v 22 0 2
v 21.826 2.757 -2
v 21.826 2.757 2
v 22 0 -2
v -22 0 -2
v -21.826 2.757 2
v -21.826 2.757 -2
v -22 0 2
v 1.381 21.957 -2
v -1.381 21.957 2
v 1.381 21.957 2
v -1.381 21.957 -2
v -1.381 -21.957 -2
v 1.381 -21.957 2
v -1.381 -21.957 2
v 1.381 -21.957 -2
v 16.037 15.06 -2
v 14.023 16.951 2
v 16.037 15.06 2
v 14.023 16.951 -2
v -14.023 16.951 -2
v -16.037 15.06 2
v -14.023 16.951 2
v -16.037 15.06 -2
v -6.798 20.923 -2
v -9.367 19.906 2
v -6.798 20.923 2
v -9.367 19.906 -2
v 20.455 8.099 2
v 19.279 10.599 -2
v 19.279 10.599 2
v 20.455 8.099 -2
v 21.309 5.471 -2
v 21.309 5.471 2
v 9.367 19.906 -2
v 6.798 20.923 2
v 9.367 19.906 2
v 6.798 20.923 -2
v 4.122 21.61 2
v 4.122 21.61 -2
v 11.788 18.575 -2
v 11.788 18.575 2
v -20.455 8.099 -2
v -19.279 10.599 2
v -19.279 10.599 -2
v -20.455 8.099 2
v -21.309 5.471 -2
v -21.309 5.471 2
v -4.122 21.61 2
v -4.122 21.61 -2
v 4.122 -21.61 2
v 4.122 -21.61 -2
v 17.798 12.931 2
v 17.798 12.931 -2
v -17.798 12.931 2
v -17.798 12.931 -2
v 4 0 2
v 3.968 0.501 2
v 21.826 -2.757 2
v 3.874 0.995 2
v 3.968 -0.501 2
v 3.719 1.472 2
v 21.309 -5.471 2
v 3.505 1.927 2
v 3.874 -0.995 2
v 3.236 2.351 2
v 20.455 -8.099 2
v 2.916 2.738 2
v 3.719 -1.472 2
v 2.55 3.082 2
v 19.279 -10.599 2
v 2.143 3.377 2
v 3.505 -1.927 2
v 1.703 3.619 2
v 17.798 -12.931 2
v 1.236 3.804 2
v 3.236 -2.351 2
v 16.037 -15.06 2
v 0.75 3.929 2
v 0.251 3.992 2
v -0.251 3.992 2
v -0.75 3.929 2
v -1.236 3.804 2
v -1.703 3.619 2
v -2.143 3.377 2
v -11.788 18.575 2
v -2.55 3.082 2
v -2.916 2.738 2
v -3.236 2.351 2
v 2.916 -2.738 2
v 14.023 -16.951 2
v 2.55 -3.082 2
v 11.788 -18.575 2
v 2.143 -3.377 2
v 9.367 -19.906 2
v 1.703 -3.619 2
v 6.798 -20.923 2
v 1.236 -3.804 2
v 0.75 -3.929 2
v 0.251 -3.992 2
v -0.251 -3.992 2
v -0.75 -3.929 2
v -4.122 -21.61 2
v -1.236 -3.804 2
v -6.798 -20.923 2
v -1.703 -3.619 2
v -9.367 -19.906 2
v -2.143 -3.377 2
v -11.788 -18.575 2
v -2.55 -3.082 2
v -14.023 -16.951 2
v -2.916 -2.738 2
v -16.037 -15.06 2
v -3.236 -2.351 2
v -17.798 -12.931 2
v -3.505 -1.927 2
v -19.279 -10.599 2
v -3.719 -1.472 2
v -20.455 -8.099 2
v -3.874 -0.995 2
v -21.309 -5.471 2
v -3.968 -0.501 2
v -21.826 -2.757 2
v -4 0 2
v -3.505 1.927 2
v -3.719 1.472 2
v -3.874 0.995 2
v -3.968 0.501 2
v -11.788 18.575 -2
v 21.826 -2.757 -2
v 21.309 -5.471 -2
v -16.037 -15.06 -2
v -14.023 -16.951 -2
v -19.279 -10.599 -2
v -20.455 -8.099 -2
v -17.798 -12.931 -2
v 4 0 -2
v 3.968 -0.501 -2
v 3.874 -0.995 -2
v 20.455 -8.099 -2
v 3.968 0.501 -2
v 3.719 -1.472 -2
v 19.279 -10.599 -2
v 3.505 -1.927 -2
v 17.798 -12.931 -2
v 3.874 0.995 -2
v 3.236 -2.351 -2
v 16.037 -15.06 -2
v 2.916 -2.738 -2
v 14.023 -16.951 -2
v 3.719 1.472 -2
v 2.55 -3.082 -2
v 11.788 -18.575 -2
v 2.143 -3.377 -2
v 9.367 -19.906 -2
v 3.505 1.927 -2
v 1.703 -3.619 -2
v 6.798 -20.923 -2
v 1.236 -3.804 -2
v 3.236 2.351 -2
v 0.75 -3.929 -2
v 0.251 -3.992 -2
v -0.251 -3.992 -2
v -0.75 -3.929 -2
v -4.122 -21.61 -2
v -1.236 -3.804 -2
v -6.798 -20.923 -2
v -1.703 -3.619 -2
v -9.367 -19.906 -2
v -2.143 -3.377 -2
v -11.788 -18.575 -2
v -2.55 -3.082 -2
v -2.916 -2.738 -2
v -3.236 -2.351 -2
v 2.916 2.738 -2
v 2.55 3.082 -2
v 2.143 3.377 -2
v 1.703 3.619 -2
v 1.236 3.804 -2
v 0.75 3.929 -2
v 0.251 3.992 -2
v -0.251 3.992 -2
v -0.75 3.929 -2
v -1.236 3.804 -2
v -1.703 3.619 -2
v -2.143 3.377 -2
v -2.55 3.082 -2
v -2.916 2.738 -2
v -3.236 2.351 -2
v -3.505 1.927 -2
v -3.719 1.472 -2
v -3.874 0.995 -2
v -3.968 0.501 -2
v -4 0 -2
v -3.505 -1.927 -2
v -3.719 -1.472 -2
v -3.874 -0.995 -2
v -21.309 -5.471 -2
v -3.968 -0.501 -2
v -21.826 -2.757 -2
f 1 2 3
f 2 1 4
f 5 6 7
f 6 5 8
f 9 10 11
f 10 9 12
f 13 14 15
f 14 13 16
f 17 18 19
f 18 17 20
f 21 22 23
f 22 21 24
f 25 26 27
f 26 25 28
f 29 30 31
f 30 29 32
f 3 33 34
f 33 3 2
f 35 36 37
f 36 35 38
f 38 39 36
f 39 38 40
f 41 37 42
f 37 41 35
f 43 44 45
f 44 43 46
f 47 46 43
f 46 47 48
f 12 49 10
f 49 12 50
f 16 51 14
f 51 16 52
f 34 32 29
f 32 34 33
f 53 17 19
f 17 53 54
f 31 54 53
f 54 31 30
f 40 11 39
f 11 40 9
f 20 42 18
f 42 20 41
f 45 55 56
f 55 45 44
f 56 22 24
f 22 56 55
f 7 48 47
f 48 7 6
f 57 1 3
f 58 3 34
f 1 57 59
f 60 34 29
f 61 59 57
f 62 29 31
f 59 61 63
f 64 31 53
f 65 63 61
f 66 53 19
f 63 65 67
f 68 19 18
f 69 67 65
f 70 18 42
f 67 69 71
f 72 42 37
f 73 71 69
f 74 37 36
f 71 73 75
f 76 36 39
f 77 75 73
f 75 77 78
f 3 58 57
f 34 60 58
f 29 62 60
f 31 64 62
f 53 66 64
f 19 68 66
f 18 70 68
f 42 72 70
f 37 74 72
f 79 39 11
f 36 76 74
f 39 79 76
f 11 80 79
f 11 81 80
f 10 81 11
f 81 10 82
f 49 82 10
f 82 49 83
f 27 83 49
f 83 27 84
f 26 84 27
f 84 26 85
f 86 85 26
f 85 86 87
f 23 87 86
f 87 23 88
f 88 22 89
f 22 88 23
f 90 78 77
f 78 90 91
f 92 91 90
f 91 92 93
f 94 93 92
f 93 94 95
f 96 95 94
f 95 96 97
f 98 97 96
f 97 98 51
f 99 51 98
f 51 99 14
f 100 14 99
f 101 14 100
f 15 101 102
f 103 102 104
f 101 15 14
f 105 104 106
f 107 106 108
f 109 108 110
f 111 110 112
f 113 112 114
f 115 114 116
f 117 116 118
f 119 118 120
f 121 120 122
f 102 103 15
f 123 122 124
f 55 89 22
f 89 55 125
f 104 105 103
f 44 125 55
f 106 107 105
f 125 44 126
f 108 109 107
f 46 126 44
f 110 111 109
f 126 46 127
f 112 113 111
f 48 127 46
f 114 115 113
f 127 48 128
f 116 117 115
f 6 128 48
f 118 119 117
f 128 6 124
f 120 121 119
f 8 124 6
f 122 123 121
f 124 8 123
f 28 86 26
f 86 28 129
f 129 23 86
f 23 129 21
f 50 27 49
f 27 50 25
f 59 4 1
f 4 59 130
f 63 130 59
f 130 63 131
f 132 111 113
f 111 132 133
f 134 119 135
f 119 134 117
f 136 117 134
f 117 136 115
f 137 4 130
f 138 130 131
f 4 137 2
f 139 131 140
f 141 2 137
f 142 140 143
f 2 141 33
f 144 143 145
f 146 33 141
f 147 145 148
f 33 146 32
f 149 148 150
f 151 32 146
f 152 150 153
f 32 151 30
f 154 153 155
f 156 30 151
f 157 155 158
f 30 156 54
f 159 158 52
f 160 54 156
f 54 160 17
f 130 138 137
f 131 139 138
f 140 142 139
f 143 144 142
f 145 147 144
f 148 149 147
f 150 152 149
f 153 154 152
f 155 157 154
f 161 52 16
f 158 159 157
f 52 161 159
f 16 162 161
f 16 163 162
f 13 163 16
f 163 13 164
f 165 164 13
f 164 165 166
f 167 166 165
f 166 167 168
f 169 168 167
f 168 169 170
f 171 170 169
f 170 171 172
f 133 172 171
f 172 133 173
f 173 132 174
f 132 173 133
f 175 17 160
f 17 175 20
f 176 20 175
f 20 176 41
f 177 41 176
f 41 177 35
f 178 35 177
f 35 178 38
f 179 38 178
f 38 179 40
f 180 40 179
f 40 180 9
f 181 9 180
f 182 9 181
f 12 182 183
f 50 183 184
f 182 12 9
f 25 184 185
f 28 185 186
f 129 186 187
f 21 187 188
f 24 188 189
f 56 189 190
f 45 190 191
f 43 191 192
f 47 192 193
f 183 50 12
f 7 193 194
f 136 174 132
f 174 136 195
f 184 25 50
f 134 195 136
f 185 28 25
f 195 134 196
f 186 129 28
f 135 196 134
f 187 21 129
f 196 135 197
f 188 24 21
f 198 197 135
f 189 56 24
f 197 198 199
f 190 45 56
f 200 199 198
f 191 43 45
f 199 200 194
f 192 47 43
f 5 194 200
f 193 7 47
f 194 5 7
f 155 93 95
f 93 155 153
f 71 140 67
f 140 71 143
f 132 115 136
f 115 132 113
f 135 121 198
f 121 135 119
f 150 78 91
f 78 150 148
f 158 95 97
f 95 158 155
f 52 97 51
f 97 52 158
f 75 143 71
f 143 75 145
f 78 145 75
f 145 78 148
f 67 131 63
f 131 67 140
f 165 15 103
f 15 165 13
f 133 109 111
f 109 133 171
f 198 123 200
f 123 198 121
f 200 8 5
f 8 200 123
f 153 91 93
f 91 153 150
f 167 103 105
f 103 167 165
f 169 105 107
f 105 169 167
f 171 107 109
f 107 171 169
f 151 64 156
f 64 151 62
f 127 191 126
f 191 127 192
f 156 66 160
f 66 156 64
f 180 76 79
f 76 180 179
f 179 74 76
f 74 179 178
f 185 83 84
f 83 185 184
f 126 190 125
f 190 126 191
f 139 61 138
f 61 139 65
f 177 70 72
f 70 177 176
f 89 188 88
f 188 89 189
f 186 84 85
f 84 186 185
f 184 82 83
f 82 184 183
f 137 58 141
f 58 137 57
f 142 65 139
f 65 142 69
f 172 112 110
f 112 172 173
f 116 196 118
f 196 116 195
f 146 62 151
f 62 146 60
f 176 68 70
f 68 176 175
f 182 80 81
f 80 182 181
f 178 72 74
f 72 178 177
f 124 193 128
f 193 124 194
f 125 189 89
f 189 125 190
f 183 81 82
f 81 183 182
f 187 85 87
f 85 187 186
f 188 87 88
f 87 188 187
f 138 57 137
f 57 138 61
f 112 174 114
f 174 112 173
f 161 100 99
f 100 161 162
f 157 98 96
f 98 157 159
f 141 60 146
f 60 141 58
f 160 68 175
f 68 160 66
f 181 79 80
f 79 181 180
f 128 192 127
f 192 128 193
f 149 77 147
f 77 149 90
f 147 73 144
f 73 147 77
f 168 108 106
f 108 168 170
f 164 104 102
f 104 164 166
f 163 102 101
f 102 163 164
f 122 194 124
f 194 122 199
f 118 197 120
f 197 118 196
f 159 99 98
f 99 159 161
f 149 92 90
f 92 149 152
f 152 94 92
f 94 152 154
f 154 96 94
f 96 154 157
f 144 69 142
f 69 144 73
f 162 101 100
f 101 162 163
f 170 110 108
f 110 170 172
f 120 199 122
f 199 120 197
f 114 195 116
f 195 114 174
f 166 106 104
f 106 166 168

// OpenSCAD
$fn = 50;


difference() {
	union() {
		translate(v = [0, 0, -2.0000000000]) {
			cylinder(h = 4, r = 22.0000000000);
		}
	}
	union() {
		translate(v = [0, 0, -100.0000000000]) {
			cylinder(h = 200, r = 4);
		}
	}
}
